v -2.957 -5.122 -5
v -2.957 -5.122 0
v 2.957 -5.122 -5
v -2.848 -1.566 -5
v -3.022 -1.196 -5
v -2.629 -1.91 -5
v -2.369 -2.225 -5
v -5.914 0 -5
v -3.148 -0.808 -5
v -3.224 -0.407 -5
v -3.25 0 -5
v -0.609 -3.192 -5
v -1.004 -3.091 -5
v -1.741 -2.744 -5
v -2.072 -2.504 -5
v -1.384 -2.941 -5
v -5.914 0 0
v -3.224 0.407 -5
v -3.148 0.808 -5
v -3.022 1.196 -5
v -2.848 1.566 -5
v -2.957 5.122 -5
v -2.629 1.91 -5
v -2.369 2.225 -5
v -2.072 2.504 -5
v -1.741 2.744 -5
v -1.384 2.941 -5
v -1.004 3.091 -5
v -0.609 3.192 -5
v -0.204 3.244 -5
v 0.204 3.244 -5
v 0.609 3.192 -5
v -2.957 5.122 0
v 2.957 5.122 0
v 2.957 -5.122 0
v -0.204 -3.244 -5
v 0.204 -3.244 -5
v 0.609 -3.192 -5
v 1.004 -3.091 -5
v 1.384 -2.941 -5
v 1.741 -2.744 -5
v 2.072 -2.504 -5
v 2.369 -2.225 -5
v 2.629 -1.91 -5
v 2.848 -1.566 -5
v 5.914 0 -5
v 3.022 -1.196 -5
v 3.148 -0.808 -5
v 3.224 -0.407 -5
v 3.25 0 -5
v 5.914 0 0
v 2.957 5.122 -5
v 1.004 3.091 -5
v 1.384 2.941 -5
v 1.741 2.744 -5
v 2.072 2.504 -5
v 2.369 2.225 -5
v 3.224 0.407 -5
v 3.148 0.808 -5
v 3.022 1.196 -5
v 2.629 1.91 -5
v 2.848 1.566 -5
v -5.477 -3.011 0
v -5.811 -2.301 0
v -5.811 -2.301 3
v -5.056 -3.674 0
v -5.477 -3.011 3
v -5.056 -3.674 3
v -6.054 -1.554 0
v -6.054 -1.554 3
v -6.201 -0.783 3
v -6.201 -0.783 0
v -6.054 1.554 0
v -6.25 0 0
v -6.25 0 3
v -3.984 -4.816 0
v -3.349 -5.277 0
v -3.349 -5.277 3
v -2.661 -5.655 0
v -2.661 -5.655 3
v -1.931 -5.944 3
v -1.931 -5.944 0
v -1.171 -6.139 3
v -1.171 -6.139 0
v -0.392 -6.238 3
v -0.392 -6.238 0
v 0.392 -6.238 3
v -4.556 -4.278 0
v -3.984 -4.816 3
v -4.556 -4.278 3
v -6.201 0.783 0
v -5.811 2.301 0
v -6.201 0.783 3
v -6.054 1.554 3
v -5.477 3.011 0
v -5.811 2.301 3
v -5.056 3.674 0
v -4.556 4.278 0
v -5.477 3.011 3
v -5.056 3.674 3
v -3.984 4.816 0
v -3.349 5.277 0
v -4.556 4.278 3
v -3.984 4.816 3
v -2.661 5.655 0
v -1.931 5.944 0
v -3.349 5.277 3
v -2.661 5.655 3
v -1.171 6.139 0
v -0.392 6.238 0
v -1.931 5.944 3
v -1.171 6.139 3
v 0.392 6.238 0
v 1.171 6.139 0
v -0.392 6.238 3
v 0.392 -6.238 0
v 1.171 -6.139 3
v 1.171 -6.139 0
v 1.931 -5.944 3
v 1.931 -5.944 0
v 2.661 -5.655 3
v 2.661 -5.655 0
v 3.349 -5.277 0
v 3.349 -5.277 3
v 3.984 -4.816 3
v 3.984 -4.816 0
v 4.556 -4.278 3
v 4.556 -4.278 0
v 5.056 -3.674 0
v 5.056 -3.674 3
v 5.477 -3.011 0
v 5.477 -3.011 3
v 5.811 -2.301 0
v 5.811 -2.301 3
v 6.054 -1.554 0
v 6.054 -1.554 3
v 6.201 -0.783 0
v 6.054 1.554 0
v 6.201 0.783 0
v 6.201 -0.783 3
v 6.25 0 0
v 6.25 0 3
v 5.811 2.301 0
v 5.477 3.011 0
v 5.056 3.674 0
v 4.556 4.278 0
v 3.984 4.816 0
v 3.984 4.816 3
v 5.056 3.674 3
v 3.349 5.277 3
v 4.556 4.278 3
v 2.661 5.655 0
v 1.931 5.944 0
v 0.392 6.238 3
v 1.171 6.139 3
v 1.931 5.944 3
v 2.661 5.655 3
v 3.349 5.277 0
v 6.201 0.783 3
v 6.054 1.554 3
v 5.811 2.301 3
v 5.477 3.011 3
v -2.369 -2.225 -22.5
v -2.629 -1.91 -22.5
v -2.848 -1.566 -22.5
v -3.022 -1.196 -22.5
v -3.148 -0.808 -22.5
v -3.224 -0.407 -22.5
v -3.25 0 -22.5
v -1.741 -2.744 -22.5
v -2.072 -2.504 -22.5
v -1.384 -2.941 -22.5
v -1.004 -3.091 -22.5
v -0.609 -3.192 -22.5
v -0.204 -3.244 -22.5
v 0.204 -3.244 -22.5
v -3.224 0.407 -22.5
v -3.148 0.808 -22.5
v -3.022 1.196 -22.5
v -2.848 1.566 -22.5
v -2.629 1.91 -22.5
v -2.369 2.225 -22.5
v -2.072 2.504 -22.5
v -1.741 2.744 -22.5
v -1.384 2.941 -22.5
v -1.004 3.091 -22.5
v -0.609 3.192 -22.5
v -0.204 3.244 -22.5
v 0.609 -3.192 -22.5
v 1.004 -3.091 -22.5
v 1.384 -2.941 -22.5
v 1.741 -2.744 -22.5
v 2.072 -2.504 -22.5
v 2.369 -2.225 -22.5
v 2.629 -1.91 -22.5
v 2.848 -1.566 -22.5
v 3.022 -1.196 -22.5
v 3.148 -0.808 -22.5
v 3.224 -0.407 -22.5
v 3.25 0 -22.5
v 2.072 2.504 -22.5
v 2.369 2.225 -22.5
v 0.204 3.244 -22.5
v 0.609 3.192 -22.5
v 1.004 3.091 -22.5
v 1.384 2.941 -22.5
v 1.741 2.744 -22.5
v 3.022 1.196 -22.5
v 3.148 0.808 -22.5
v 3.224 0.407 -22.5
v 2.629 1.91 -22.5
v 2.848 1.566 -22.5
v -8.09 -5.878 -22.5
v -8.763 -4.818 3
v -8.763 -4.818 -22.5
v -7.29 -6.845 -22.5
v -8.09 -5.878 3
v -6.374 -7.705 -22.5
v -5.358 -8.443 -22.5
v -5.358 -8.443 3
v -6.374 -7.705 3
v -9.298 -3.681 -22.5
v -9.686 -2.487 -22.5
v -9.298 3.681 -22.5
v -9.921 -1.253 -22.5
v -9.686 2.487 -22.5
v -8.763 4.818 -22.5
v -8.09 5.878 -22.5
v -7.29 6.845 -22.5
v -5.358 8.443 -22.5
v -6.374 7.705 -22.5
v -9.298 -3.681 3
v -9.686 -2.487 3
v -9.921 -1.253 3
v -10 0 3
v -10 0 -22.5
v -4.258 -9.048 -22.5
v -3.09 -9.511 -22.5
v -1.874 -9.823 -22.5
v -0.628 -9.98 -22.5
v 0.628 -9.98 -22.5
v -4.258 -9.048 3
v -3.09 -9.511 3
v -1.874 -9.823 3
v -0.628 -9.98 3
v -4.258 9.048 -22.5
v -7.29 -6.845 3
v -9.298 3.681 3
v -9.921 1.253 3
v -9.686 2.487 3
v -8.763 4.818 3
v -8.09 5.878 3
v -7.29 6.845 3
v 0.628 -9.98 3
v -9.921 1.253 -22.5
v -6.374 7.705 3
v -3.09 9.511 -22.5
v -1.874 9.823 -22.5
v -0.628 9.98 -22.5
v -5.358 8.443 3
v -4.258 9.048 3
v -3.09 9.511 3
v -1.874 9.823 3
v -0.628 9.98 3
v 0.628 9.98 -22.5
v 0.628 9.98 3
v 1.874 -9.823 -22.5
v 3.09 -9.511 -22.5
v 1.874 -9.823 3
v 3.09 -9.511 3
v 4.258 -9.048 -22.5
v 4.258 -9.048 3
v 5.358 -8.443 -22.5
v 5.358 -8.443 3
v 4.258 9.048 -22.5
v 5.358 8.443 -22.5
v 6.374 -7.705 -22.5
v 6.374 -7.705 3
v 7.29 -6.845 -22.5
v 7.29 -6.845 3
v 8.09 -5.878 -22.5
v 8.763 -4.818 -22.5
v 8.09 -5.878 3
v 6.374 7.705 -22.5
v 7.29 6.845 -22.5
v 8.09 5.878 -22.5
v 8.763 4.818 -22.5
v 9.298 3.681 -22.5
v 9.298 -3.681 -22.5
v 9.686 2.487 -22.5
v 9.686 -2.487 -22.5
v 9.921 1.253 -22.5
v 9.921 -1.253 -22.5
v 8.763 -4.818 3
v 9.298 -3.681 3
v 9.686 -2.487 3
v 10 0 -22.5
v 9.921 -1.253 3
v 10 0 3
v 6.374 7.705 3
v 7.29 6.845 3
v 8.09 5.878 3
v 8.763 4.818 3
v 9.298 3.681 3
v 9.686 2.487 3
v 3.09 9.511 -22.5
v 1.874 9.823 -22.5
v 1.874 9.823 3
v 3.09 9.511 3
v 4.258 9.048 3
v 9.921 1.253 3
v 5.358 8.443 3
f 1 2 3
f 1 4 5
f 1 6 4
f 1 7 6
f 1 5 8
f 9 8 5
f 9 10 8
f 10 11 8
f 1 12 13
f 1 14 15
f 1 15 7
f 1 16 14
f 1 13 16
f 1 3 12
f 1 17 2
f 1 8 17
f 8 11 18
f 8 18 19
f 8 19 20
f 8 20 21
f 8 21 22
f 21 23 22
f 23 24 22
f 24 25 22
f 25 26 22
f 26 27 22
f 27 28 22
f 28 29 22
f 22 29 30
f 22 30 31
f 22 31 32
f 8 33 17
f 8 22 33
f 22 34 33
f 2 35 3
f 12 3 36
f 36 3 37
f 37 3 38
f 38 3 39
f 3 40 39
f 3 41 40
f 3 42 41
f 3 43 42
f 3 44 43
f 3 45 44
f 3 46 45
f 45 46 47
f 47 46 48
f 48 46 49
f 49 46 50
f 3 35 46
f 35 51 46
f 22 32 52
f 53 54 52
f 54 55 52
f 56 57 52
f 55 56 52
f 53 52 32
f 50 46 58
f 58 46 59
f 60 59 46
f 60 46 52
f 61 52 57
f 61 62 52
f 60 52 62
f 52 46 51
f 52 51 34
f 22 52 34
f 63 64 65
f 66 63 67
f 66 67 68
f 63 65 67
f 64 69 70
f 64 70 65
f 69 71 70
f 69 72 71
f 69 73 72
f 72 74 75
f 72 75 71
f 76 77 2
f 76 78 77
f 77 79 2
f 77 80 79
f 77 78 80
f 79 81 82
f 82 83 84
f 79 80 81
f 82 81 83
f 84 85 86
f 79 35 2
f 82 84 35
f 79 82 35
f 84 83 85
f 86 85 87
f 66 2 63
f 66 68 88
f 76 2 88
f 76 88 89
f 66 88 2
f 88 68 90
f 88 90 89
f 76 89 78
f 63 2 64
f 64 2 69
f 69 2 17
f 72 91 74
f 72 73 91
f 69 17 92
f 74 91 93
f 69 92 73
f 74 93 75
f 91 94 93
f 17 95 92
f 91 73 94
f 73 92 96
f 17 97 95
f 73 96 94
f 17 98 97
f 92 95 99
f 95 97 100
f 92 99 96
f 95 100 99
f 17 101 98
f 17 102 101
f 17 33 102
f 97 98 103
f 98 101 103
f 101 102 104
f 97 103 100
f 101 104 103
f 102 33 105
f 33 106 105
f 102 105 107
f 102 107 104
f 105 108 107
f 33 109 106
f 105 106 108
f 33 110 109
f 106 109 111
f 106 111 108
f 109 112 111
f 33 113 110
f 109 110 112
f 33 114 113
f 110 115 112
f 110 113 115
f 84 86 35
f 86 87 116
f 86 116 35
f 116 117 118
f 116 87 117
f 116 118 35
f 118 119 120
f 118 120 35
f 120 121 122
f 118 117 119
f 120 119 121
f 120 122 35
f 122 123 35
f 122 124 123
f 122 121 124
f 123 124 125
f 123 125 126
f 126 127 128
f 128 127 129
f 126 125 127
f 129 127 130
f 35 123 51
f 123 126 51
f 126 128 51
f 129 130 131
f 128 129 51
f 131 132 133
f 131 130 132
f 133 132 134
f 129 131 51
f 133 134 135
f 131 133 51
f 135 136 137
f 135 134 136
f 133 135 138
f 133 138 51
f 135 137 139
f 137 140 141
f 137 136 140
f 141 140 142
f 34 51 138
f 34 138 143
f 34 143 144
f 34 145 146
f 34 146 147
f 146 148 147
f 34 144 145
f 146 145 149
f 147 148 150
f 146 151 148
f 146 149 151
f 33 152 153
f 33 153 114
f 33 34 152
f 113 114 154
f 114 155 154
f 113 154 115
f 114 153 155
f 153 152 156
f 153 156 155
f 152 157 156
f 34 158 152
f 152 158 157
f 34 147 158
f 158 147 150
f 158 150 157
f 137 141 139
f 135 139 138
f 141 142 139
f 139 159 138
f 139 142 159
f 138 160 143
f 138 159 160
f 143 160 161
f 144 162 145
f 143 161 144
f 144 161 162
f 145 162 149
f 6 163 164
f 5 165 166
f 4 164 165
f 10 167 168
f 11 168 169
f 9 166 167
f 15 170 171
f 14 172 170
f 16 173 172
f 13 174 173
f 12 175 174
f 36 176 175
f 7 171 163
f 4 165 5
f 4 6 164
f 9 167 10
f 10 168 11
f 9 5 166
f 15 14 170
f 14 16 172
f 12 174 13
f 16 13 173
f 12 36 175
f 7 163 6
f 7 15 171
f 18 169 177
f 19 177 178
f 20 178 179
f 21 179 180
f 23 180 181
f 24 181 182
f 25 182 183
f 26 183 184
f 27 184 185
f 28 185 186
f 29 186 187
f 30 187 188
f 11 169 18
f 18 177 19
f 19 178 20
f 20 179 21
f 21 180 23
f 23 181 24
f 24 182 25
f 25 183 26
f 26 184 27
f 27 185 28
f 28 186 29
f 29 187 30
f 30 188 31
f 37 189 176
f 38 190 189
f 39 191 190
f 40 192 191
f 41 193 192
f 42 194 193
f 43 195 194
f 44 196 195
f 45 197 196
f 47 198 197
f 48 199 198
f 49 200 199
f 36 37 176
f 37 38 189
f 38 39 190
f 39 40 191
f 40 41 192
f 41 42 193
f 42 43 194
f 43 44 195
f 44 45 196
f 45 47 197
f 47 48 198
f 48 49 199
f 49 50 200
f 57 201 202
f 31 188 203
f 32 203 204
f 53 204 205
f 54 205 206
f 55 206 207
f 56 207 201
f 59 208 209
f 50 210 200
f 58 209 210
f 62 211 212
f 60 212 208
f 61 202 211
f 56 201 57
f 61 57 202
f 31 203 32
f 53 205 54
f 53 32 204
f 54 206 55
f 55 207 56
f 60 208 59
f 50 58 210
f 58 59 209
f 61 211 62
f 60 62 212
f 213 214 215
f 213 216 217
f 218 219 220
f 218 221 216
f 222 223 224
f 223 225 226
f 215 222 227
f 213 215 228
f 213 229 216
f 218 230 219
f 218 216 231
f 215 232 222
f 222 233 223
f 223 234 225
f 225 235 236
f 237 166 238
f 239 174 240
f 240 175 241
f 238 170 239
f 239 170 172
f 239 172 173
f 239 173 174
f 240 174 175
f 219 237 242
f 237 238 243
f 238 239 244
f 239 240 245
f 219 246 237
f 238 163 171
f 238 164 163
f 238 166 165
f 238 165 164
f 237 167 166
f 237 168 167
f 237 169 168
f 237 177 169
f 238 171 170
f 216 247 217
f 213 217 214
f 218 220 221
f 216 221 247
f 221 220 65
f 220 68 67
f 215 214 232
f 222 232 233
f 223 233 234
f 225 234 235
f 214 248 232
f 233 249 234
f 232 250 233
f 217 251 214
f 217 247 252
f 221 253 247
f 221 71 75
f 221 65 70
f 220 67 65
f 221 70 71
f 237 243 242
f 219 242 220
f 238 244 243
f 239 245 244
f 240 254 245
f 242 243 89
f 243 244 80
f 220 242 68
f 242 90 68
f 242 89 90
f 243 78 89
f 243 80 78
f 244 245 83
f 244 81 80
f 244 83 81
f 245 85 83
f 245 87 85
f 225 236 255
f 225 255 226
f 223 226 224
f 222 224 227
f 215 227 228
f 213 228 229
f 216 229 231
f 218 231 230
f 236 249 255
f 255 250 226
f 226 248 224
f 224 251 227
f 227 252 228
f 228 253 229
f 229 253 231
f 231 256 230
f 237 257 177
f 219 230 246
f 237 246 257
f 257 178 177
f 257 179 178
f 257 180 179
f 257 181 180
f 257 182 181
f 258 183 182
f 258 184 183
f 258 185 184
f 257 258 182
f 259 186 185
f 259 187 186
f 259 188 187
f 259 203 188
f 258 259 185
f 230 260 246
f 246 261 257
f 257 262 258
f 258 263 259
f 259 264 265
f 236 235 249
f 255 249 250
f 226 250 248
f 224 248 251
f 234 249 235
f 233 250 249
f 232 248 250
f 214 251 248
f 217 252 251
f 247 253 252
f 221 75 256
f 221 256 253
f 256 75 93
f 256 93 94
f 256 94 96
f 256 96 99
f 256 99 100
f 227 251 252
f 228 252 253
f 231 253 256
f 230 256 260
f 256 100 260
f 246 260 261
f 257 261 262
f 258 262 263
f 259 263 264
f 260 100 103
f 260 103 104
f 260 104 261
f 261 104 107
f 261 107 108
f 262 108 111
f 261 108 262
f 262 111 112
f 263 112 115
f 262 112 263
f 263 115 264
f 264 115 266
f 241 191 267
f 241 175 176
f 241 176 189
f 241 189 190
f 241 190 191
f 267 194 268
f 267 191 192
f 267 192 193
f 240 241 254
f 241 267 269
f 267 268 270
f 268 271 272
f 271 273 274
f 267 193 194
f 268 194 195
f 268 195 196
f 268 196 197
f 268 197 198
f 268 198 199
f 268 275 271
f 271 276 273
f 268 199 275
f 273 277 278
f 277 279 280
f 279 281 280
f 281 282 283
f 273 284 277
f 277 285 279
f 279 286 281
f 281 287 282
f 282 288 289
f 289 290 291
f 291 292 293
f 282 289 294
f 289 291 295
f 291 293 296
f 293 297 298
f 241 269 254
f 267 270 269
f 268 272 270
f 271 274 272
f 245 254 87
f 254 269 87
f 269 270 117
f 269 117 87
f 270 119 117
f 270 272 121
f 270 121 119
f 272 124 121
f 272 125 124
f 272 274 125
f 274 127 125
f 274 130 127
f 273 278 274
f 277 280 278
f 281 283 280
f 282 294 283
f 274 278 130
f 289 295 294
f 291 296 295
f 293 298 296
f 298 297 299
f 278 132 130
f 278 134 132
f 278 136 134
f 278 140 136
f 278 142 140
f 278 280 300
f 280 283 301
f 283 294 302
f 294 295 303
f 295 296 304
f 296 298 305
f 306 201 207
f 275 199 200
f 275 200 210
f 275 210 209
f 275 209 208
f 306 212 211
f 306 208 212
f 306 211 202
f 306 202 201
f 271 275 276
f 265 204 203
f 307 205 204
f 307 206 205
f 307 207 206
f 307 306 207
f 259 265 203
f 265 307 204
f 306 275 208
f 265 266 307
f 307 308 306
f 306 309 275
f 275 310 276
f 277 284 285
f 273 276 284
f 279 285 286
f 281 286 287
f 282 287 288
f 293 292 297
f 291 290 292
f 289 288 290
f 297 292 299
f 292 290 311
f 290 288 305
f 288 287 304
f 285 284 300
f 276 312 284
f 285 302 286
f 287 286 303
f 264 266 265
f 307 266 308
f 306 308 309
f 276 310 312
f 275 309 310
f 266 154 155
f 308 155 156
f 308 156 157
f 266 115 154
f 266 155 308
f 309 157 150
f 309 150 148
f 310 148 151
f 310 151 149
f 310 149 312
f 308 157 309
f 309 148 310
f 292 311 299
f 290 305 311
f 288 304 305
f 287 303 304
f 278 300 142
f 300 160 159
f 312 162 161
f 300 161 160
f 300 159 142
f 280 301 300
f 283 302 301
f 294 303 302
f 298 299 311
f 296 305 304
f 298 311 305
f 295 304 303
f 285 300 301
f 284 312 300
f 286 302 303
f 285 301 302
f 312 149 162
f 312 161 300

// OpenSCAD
$fn = 50;

difference() {
	union() {
		translate(v = [0, 0, -22.5]) {
			cylinder(h = 25.5, r = 10.0);
		}
	}
	union() {
		translate(v = [0, 0, 0]) {
			rotate(a = [0, 0, 0]) {
				difference() {
					union() {
						translate(v = [0, 0, -5]) {
							linear_extrude(height = 5) {
								polygon(points = [[5.914249999999999, 0.0], [2.957125, 5.1218907443321156], [-2.9571249999999982, 5.1218907443321156], [-5.914249999999999, 7.242867331857232e-16], [-2.9571250000000022, -5.121890744332115], [2.9571249999999956, -5.121890744332118]]);
							}
						}
					}
					union();
				}
			}
		}
		#cylinder(h = 3, r = 6.25);
		#translate(v = [0, 0, -100.0]) {
			cylinder(h = 200, r = 3.25);
		}
	}
}
